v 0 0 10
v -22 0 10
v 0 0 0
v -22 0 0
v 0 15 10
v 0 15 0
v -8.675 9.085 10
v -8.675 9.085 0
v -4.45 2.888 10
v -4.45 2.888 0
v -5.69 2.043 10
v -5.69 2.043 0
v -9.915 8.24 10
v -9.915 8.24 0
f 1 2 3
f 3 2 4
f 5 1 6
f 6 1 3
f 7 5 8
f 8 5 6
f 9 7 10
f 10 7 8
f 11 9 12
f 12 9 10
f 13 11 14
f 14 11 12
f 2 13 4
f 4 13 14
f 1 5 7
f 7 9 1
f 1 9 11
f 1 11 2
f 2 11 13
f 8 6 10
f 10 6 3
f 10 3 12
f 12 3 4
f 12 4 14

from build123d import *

# Parameters (mm, degrees)
RESSALTO_EXTRUS_O1_DEPTH = 10


with BuildPart() as part:
    # Esboço1 → Ressalto-extrusão1 (new body)
    with BuildSketch(Plane.XY):
        Polygon((0, 0), (0, 15), (-8.675387099, 9.084963341), (-4.450360915, 2.88825827), (-5.689701929, 2.043253033), (-9.914728114, 8.239958104), (-22, 0), align=None)
    extrude(amount=RESSALTO_EXTRUS_O1_DEPTH)


solid = part.part
